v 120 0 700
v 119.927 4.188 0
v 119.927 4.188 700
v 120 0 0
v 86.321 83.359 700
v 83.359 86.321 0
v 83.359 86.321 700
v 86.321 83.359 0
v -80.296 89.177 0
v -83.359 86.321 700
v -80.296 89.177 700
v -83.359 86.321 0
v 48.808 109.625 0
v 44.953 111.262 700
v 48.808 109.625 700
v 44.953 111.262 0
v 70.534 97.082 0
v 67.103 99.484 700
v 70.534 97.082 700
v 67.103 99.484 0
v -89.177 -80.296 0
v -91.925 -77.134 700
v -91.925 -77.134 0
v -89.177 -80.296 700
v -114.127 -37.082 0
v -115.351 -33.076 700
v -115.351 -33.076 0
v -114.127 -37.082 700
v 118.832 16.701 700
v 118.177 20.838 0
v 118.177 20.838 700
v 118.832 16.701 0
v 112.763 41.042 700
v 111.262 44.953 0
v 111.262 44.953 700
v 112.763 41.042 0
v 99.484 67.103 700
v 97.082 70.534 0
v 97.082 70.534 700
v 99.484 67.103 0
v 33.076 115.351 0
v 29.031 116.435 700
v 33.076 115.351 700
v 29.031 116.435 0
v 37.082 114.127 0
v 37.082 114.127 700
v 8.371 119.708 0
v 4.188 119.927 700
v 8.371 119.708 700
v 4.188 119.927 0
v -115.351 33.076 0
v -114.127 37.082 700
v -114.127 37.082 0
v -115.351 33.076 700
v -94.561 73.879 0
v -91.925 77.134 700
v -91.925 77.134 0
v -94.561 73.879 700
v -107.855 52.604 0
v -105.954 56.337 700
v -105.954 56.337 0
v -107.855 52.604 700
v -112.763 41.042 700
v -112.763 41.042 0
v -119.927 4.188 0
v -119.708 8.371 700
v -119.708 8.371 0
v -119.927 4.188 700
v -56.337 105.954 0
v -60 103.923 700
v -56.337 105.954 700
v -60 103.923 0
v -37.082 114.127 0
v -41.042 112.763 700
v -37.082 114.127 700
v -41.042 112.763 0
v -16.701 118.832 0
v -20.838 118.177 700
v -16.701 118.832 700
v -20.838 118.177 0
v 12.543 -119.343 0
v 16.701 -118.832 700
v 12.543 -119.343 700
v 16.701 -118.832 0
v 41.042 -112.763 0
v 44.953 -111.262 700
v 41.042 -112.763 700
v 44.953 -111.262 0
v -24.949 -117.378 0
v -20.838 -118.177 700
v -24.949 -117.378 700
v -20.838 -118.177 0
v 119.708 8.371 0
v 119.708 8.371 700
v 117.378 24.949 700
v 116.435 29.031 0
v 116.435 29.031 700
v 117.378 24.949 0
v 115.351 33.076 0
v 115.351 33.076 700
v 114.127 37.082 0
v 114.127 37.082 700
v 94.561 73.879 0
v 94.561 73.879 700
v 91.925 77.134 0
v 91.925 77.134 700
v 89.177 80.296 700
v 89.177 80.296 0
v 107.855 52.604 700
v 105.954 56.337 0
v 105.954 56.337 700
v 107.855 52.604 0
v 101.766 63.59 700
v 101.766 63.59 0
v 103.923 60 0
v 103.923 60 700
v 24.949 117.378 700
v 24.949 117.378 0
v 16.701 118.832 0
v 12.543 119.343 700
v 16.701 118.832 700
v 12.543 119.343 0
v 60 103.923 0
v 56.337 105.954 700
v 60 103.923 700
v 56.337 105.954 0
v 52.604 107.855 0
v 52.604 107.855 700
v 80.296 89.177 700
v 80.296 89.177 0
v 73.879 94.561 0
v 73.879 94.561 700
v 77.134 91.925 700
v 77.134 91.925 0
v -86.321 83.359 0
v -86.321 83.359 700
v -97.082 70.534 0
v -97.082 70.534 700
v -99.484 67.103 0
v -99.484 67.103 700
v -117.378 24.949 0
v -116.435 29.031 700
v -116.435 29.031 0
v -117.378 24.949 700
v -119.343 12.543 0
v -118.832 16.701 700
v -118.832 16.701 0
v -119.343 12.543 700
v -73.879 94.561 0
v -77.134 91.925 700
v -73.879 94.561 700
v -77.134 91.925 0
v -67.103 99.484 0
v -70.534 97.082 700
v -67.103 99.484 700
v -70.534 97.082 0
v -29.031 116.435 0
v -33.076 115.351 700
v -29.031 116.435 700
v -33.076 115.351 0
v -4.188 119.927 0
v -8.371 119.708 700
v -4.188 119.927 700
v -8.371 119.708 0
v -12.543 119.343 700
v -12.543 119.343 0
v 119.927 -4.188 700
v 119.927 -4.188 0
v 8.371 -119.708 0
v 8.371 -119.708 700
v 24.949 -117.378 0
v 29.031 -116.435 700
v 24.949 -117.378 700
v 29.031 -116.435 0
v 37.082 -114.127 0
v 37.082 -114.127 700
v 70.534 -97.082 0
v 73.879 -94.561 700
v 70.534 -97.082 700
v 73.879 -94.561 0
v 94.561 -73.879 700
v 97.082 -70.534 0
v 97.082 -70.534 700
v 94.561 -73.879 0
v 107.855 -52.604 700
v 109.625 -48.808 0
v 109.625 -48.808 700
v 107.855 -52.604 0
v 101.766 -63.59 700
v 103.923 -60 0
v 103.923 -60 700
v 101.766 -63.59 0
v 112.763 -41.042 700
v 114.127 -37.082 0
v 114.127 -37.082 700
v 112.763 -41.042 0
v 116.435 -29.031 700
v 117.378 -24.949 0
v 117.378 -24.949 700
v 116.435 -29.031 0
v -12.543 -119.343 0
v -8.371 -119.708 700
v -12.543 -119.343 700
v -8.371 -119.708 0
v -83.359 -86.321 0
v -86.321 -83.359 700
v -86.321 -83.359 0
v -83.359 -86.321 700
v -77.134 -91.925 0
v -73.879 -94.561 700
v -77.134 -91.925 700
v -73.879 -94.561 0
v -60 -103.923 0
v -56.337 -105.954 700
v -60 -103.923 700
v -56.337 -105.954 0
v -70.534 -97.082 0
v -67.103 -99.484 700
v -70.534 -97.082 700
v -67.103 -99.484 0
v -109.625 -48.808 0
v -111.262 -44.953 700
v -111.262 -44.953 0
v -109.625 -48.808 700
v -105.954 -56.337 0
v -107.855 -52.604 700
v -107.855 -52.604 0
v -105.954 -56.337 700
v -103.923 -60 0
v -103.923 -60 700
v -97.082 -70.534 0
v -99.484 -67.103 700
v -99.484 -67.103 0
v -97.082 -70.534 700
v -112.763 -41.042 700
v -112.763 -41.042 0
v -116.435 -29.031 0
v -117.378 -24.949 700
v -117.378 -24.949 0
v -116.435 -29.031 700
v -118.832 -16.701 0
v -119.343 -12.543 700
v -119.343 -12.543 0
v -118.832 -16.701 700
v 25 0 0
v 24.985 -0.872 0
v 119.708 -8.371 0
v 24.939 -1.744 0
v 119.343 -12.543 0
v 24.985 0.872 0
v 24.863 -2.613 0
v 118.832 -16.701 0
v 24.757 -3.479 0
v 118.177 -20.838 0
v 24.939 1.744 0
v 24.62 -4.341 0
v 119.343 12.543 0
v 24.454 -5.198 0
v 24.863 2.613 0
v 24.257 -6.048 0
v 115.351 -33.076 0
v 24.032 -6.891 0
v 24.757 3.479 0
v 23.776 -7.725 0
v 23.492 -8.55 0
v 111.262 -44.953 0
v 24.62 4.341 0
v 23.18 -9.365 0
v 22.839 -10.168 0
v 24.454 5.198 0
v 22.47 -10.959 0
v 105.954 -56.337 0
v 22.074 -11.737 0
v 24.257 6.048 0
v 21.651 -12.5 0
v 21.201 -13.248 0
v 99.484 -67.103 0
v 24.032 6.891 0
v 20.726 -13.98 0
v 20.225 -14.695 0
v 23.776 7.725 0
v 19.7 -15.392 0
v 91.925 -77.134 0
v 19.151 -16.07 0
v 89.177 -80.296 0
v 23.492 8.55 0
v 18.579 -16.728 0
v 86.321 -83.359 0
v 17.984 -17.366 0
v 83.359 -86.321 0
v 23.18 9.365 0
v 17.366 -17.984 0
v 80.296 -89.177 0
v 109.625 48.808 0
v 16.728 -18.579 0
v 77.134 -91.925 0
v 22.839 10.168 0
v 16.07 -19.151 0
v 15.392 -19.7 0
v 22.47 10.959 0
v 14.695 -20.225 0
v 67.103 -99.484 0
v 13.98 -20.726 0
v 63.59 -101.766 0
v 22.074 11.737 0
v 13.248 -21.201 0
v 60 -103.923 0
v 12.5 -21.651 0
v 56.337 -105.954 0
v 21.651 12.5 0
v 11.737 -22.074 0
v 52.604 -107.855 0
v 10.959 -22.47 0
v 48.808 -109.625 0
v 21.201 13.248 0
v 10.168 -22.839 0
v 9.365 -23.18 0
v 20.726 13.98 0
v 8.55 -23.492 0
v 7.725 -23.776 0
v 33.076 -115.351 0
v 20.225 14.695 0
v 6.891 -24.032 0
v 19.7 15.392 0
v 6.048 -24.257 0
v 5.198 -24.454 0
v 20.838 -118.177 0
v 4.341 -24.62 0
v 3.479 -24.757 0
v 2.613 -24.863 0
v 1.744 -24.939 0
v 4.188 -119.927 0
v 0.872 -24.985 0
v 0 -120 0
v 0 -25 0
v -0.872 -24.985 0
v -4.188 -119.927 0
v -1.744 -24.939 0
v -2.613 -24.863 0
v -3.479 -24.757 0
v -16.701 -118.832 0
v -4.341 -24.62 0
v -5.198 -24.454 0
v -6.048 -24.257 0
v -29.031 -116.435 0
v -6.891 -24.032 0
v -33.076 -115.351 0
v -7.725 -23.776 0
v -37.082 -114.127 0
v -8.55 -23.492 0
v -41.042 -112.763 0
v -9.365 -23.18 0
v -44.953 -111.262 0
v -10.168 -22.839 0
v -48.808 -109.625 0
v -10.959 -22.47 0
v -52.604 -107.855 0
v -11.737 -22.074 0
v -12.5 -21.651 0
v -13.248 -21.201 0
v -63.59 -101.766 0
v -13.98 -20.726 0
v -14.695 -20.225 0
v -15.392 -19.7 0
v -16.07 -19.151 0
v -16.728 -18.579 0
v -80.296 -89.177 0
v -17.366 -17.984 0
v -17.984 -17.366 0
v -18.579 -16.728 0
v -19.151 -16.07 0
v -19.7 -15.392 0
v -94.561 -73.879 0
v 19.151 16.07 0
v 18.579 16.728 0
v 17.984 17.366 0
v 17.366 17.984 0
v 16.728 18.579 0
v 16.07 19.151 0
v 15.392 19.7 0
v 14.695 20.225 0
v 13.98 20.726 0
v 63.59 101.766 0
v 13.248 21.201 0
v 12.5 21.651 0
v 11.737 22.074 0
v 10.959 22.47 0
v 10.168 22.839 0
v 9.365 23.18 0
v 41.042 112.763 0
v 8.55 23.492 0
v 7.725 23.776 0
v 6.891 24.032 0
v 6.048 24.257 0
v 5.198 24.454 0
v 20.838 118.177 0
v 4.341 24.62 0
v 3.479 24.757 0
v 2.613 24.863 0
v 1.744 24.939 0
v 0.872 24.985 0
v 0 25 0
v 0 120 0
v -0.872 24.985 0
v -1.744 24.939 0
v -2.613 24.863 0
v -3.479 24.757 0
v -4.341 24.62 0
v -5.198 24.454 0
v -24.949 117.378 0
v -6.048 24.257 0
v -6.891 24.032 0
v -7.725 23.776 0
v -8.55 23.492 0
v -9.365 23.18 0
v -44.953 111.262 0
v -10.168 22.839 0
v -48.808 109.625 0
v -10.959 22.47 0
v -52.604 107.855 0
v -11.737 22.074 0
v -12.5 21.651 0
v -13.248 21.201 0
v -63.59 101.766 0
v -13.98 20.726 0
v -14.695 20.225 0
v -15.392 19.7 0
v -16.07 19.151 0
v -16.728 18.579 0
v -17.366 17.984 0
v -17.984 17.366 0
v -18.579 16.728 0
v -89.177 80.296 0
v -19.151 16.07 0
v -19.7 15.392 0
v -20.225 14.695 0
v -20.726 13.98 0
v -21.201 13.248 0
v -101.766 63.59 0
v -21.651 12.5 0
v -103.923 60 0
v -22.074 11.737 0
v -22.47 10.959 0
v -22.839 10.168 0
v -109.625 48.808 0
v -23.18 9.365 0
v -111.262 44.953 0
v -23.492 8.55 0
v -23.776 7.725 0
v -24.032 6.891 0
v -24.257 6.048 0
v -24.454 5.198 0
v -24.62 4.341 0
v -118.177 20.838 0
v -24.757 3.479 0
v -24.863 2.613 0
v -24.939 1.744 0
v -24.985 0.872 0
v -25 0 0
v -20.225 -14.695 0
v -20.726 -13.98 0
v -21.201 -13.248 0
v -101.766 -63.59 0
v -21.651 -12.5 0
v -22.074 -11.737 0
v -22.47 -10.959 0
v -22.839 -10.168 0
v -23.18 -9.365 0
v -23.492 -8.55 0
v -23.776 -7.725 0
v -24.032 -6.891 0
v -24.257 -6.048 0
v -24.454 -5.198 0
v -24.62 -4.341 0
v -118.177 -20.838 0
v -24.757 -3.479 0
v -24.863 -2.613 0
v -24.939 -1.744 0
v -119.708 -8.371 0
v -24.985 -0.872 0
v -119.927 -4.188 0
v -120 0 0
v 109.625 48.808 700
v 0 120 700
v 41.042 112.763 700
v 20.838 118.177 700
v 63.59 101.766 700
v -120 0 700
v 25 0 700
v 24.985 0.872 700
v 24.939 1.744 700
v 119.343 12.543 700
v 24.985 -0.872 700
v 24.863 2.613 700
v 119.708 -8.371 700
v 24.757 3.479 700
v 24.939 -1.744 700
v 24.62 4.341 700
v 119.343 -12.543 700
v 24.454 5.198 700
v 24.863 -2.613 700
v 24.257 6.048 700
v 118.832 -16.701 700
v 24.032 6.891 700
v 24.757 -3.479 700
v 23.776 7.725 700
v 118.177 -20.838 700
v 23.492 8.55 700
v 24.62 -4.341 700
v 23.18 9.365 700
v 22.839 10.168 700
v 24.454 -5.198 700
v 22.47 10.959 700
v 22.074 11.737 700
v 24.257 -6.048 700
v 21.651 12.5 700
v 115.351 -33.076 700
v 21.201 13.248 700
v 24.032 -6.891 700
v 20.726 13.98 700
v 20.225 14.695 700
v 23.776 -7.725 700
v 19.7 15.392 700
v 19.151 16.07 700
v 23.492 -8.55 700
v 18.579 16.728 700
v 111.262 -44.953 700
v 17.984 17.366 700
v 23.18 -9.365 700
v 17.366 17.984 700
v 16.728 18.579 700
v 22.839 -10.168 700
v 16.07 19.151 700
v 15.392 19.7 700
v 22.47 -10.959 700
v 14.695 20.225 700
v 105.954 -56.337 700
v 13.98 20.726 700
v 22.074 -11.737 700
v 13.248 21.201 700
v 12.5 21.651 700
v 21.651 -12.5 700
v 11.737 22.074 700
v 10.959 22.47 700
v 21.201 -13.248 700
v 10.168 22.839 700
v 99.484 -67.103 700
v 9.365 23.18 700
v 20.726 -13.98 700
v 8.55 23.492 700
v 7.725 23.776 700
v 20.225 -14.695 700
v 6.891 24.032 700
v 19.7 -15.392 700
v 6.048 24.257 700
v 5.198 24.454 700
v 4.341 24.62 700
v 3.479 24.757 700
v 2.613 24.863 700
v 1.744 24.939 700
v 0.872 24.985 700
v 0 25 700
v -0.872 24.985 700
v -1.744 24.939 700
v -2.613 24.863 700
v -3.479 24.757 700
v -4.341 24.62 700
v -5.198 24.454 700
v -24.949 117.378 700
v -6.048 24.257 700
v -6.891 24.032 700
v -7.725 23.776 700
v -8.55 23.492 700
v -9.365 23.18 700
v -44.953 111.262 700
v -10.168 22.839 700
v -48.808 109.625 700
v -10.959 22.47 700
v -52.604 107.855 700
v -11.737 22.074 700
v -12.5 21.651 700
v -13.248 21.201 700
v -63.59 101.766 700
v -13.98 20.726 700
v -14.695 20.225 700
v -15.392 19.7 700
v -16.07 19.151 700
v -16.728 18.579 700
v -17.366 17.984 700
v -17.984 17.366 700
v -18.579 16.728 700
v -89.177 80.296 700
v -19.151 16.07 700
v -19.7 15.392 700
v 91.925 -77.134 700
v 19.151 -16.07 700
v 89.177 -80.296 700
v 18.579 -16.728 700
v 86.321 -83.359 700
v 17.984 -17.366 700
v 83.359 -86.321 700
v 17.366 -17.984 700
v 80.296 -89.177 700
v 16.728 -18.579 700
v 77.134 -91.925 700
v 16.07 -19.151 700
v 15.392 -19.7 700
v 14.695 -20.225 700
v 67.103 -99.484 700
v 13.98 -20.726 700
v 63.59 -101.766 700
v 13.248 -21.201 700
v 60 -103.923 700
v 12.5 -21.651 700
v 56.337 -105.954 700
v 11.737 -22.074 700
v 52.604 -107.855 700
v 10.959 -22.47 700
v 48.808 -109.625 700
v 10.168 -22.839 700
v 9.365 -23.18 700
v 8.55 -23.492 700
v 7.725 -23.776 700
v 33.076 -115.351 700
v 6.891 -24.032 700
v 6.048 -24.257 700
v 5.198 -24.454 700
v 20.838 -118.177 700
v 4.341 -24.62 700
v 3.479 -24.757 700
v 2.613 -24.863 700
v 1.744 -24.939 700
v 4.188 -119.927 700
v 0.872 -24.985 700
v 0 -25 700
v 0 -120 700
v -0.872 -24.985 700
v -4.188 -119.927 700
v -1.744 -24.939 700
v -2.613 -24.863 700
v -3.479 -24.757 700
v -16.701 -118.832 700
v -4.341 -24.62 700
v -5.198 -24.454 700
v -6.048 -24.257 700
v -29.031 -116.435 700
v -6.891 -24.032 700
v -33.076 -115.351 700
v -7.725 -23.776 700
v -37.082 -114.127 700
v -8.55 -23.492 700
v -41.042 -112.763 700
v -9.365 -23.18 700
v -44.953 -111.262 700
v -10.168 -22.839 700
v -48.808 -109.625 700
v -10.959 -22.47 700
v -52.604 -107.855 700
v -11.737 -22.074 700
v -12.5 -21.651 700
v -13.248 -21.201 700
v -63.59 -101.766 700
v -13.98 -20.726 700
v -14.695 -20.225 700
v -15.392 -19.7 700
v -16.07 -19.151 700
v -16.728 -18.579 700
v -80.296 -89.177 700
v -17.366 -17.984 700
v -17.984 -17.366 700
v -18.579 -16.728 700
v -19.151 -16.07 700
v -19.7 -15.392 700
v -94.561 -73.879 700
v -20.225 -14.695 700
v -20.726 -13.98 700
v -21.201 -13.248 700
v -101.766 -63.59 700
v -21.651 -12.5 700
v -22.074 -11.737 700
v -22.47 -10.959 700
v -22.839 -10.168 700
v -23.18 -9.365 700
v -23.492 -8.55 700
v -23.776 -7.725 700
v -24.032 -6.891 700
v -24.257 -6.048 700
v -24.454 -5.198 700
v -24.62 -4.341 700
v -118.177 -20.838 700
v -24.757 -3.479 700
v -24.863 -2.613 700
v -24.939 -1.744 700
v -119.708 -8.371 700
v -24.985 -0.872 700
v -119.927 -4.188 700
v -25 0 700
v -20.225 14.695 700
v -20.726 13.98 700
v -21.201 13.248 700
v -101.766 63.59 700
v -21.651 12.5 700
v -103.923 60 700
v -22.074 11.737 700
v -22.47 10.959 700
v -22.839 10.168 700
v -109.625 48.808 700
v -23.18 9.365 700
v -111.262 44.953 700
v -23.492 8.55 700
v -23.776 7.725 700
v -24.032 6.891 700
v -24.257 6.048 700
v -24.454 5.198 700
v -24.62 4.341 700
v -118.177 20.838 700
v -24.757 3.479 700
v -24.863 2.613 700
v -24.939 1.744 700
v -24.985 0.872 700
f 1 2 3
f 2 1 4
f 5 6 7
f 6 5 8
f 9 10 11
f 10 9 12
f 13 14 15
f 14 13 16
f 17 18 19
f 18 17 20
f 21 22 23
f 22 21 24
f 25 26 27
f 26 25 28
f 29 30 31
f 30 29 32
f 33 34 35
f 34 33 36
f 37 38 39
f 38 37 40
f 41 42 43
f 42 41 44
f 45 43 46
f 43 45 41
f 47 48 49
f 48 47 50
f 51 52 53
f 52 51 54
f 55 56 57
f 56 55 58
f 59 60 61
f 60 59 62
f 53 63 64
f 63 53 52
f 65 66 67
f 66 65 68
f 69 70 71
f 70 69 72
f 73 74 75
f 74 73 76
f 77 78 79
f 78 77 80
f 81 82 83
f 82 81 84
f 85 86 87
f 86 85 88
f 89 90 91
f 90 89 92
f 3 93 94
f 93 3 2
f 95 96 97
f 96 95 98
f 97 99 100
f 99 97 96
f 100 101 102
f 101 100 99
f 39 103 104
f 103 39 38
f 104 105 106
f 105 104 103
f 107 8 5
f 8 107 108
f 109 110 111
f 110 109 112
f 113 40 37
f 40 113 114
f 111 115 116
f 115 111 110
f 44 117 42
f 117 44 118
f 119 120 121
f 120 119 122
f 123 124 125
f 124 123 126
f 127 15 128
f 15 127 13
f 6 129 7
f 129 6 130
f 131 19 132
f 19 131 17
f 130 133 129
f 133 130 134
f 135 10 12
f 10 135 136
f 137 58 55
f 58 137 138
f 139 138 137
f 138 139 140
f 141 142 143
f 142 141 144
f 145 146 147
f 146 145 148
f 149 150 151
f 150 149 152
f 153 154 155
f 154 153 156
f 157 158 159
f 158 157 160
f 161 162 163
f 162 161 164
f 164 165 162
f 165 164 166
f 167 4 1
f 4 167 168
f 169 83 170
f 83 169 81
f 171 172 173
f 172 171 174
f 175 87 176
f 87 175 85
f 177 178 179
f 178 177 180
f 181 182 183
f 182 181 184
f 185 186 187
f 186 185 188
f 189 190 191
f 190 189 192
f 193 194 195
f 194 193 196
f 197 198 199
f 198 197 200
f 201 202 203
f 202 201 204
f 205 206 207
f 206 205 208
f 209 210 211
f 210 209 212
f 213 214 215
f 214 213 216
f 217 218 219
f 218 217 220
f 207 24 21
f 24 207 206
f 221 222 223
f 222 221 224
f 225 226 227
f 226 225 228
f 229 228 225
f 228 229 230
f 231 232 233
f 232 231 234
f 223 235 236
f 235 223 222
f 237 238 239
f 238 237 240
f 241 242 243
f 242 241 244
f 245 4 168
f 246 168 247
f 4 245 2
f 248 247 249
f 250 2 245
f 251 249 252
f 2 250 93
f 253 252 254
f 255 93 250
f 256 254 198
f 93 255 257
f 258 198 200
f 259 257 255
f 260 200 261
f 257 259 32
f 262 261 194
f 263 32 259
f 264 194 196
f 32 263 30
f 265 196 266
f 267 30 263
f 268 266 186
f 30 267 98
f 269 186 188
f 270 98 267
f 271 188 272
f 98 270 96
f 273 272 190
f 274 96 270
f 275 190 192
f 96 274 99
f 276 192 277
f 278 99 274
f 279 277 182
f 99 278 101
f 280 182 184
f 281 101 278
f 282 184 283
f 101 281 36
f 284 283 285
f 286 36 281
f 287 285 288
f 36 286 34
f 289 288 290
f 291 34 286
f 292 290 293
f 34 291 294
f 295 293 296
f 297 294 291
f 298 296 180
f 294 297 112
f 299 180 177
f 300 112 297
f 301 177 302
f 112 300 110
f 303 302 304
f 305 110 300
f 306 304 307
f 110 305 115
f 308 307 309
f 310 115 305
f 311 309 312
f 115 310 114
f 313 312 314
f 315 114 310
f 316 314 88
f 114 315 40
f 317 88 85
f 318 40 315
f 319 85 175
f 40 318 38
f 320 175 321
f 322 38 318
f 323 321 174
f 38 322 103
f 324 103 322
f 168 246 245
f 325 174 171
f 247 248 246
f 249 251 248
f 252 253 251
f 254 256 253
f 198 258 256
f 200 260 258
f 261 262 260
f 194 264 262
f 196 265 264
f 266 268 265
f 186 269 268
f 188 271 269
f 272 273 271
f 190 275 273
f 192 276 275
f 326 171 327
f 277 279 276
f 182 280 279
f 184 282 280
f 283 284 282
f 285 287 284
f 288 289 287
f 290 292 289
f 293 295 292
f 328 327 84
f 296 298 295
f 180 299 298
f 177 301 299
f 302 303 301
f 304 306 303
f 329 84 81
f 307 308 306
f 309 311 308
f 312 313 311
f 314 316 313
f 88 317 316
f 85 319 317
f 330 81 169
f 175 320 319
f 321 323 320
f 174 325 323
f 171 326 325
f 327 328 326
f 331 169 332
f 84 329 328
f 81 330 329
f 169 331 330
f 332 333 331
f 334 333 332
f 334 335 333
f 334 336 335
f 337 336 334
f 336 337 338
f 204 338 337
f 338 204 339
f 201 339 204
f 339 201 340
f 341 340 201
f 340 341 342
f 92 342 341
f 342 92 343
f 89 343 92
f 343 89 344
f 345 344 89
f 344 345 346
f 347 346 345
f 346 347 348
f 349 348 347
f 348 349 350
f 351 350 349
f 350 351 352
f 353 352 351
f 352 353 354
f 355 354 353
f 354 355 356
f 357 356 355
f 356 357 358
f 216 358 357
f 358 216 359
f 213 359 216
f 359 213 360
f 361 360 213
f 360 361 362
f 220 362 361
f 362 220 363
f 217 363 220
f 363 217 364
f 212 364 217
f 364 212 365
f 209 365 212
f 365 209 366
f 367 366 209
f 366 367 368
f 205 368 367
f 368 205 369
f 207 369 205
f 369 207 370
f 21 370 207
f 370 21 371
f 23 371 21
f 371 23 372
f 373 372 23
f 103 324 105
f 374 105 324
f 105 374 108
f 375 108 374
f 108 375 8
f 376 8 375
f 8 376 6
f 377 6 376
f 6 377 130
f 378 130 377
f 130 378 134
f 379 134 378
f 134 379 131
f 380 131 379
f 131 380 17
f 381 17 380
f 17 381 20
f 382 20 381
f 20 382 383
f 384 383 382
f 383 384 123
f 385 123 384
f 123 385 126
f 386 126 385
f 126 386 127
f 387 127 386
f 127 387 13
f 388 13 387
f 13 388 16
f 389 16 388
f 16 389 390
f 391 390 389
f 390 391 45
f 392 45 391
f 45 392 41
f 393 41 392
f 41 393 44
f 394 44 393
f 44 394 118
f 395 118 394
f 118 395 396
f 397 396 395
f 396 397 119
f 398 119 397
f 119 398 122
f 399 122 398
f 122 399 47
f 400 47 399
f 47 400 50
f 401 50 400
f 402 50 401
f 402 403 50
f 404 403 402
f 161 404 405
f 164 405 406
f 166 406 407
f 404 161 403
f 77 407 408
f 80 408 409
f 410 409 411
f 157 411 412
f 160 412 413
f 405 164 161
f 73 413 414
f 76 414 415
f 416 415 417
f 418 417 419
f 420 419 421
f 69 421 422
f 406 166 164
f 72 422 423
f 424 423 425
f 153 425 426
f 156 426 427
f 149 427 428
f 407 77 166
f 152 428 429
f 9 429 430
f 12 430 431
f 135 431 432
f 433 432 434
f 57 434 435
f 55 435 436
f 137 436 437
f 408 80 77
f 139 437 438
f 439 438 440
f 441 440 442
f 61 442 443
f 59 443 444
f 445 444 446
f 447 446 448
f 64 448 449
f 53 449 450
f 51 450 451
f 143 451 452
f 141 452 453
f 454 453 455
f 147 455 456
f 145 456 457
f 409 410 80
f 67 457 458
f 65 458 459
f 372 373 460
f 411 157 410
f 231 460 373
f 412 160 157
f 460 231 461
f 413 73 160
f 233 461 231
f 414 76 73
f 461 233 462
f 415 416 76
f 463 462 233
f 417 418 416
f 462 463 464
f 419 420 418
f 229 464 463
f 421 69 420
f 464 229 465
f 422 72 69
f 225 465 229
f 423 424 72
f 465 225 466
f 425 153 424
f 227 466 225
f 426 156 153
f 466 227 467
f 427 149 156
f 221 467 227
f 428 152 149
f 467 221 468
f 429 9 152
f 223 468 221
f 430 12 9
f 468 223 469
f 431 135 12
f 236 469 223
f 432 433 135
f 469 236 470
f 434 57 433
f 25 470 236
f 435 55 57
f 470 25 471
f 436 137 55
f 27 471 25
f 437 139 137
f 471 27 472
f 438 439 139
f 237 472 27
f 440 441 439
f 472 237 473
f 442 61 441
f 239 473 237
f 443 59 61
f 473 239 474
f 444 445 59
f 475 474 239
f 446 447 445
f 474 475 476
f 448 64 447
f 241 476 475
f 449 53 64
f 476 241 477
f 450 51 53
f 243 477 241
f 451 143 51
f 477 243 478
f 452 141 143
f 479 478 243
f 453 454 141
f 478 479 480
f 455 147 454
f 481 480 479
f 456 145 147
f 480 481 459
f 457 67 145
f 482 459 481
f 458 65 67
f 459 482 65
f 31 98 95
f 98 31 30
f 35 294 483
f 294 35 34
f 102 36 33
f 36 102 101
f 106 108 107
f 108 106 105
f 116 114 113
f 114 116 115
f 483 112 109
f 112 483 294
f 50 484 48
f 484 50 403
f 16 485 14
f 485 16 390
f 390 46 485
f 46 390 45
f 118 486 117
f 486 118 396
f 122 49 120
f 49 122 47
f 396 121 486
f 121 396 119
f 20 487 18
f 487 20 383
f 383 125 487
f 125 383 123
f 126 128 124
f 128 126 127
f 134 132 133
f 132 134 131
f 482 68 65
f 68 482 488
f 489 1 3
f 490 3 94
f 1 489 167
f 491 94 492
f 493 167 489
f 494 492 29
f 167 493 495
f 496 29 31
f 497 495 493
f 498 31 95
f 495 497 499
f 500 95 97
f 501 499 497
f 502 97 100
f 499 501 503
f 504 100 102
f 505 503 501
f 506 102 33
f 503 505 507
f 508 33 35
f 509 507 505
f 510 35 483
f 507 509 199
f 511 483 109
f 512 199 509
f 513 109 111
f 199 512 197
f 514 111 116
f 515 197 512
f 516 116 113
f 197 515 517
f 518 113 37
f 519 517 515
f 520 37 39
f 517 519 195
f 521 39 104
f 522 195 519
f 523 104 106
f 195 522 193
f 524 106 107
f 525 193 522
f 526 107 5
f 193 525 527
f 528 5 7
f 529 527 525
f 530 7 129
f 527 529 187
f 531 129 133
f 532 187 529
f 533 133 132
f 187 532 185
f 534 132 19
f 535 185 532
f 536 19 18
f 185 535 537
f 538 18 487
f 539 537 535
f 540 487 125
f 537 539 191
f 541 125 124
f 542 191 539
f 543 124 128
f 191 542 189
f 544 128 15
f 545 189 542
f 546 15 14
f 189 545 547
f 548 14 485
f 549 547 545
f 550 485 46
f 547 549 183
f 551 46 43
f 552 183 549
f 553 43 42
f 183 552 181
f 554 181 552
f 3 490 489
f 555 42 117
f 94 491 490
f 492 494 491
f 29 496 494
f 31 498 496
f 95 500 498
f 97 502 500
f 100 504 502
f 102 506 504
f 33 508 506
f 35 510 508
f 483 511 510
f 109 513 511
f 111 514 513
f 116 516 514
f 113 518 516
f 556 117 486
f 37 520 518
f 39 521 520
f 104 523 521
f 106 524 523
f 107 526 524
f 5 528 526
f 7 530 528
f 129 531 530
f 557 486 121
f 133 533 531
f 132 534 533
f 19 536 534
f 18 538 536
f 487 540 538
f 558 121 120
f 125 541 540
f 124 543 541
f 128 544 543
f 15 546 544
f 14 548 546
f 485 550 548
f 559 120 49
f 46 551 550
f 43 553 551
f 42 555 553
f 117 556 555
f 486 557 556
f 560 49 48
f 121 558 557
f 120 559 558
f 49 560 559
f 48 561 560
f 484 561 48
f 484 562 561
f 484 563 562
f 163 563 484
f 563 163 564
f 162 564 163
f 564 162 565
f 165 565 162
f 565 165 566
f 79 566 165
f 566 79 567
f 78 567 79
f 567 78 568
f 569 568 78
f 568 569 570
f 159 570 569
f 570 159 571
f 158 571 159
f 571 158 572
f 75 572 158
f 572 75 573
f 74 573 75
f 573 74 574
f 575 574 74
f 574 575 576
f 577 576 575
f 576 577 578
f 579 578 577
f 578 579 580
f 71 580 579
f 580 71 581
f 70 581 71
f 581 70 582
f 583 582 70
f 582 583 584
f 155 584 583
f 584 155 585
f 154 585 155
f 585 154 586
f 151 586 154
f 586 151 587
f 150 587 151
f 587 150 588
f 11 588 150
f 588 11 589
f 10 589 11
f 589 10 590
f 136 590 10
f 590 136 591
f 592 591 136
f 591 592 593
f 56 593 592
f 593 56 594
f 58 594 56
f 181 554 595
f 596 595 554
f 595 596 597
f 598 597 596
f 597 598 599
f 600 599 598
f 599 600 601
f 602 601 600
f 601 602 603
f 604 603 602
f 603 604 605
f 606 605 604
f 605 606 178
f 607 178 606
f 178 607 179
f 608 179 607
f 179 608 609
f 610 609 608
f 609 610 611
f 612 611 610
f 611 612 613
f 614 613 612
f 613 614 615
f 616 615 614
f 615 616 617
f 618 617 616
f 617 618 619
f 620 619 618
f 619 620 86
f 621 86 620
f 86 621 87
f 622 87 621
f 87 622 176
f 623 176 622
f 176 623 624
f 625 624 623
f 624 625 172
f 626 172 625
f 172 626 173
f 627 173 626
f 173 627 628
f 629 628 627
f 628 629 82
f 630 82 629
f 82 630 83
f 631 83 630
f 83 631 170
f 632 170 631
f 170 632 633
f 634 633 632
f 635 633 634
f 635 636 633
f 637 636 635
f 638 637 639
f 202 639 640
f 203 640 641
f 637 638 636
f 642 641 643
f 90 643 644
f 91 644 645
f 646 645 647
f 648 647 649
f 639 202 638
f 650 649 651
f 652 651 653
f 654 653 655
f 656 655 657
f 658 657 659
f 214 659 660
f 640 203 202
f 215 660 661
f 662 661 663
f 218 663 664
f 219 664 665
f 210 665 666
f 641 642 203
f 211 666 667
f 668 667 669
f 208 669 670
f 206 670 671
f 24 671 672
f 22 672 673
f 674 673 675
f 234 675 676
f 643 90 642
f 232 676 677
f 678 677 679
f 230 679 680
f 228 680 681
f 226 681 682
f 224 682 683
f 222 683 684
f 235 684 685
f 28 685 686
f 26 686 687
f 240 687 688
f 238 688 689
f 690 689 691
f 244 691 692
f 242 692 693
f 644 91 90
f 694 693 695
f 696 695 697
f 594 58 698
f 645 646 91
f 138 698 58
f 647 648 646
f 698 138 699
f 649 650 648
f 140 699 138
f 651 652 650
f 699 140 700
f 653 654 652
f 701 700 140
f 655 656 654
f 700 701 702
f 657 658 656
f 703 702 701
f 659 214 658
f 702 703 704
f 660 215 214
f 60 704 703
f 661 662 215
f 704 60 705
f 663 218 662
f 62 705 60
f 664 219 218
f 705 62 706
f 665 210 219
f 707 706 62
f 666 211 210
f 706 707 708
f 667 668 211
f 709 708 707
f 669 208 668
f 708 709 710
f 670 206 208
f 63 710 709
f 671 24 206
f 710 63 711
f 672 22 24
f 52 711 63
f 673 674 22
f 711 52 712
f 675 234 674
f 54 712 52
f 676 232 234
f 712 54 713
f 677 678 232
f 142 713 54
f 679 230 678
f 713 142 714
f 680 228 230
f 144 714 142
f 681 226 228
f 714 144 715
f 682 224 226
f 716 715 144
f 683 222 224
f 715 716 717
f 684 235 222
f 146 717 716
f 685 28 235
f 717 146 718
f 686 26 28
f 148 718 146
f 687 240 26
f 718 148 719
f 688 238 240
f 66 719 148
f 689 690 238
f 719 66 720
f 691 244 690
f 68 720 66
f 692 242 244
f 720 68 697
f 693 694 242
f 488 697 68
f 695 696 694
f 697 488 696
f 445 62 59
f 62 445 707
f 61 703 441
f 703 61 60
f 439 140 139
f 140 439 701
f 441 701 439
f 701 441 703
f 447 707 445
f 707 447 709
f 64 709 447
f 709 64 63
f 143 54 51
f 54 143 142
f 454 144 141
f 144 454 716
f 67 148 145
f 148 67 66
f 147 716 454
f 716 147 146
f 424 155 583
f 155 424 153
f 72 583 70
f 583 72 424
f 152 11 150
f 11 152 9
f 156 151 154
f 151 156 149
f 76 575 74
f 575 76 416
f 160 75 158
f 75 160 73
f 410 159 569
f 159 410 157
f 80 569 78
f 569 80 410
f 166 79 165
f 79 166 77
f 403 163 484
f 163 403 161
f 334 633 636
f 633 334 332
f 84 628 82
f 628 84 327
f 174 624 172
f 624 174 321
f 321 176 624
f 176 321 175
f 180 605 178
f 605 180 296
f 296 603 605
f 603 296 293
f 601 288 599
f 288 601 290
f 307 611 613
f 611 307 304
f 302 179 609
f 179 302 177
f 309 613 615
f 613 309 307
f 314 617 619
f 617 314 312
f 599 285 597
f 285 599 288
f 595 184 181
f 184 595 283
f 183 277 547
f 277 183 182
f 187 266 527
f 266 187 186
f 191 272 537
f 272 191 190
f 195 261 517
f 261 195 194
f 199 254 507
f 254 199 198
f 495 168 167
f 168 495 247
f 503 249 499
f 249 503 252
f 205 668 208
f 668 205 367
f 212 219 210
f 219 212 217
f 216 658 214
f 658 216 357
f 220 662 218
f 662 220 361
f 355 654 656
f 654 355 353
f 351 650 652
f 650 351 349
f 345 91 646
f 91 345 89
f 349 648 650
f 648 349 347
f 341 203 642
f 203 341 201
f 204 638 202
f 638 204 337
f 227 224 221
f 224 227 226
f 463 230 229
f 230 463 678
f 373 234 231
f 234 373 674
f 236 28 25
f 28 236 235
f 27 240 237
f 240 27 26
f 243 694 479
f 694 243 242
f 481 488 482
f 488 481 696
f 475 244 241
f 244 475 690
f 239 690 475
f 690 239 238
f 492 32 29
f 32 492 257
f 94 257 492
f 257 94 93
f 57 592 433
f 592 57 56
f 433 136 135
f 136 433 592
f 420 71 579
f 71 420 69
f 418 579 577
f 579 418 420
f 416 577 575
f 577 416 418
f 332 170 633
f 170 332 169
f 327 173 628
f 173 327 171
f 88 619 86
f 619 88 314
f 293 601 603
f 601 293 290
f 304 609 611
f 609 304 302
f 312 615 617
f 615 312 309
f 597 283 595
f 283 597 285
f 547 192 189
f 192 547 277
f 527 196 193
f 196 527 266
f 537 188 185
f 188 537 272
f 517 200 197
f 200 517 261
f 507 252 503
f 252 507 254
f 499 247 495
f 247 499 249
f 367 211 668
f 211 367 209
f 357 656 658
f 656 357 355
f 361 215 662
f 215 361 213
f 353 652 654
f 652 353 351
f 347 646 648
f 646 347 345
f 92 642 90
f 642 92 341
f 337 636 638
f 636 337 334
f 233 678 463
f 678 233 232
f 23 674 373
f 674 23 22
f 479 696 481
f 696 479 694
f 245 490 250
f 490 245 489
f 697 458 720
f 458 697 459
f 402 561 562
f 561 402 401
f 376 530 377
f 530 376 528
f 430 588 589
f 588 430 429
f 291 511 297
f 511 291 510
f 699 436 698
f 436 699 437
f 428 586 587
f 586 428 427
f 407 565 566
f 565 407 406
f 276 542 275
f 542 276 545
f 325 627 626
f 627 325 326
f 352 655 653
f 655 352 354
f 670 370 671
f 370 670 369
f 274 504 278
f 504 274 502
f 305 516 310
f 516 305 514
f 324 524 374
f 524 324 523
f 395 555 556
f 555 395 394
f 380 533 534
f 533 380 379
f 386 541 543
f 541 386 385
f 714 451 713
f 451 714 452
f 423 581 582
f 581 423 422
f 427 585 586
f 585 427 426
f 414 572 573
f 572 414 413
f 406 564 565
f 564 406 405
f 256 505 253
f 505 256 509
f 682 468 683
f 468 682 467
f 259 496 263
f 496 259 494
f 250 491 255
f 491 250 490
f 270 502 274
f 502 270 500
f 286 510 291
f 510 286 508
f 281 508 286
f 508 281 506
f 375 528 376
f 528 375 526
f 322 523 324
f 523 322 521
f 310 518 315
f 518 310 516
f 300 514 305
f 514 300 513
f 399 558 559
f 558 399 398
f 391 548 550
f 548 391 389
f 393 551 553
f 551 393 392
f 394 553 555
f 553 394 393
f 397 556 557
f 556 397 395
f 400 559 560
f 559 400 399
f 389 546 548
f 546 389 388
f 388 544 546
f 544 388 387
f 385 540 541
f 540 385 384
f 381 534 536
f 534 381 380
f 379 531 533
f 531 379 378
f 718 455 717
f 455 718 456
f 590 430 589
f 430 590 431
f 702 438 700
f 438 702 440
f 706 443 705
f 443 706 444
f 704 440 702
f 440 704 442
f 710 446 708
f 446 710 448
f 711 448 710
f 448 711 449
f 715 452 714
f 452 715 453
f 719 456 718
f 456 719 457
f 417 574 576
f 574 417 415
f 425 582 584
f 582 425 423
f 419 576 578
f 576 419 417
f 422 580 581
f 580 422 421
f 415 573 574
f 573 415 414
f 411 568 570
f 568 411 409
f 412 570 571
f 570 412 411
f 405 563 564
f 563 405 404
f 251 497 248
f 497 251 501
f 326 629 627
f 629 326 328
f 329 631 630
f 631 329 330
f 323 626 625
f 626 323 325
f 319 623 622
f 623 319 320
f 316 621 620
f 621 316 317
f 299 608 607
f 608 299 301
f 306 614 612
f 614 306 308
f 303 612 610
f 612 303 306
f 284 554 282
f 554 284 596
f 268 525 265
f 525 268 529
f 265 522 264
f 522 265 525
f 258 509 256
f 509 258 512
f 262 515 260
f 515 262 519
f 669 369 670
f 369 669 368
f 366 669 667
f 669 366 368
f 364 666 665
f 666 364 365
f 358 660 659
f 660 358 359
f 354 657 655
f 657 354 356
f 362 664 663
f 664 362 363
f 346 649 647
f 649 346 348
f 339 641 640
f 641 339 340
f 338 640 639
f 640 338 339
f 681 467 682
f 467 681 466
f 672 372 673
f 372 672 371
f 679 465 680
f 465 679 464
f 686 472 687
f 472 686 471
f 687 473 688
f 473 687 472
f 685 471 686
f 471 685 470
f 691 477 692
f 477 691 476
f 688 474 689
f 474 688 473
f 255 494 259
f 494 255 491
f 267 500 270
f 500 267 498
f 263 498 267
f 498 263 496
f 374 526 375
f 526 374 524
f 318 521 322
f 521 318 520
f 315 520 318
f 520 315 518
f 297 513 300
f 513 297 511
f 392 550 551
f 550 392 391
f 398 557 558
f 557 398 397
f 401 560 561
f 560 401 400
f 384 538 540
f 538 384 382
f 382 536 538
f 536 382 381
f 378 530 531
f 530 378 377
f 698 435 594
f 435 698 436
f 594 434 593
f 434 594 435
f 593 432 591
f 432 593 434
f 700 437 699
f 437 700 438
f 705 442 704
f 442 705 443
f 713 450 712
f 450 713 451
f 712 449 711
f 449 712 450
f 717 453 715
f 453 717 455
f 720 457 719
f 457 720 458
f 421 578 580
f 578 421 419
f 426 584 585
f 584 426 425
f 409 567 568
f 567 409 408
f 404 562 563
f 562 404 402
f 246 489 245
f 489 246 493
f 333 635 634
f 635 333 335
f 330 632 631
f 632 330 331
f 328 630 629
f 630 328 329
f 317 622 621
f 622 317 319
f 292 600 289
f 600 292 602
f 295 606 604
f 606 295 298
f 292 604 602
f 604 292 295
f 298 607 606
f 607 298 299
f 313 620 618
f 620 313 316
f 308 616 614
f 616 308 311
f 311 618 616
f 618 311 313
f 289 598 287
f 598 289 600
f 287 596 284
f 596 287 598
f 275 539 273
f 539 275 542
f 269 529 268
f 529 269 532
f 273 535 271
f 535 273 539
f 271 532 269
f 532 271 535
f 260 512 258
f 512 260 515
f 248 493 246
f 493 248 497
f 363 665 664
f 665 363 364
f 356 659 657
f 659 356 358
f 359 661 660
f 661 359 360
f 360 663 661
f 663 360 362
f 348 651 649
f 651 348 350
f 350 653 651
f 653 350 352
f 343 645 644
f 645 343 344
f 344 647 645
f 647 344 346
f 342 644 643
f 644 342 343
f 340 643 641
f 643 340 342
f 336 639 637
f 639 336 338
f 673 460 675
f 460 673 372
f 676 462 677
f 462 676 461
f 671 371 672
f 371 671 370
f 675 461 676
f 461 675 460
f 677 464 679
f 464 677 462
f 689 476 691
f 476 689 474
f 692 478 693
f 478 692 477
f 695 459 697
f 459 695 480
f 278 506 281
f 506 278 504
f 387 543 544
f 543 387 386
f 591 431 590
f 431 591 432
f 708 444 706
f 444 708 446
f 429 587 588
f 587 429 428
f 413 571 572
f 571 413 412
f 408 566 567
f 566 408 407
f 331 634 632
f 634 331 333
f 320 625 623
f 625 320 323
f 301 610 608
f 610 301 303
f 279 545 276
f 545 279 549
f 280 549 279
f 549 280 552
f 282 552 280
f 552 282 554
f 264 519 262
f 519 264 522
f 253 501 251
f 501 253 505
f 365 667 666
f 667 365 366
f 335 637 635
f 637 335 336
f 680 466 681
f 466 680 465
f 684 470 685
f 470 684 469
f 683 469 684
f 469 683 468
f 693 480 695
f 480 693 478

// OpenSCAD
$fn = 180;

difference() {
    cylinder(d=240, h=700);

    translate([0,0,-1])
    cylinder(d=50, h=702);
}
